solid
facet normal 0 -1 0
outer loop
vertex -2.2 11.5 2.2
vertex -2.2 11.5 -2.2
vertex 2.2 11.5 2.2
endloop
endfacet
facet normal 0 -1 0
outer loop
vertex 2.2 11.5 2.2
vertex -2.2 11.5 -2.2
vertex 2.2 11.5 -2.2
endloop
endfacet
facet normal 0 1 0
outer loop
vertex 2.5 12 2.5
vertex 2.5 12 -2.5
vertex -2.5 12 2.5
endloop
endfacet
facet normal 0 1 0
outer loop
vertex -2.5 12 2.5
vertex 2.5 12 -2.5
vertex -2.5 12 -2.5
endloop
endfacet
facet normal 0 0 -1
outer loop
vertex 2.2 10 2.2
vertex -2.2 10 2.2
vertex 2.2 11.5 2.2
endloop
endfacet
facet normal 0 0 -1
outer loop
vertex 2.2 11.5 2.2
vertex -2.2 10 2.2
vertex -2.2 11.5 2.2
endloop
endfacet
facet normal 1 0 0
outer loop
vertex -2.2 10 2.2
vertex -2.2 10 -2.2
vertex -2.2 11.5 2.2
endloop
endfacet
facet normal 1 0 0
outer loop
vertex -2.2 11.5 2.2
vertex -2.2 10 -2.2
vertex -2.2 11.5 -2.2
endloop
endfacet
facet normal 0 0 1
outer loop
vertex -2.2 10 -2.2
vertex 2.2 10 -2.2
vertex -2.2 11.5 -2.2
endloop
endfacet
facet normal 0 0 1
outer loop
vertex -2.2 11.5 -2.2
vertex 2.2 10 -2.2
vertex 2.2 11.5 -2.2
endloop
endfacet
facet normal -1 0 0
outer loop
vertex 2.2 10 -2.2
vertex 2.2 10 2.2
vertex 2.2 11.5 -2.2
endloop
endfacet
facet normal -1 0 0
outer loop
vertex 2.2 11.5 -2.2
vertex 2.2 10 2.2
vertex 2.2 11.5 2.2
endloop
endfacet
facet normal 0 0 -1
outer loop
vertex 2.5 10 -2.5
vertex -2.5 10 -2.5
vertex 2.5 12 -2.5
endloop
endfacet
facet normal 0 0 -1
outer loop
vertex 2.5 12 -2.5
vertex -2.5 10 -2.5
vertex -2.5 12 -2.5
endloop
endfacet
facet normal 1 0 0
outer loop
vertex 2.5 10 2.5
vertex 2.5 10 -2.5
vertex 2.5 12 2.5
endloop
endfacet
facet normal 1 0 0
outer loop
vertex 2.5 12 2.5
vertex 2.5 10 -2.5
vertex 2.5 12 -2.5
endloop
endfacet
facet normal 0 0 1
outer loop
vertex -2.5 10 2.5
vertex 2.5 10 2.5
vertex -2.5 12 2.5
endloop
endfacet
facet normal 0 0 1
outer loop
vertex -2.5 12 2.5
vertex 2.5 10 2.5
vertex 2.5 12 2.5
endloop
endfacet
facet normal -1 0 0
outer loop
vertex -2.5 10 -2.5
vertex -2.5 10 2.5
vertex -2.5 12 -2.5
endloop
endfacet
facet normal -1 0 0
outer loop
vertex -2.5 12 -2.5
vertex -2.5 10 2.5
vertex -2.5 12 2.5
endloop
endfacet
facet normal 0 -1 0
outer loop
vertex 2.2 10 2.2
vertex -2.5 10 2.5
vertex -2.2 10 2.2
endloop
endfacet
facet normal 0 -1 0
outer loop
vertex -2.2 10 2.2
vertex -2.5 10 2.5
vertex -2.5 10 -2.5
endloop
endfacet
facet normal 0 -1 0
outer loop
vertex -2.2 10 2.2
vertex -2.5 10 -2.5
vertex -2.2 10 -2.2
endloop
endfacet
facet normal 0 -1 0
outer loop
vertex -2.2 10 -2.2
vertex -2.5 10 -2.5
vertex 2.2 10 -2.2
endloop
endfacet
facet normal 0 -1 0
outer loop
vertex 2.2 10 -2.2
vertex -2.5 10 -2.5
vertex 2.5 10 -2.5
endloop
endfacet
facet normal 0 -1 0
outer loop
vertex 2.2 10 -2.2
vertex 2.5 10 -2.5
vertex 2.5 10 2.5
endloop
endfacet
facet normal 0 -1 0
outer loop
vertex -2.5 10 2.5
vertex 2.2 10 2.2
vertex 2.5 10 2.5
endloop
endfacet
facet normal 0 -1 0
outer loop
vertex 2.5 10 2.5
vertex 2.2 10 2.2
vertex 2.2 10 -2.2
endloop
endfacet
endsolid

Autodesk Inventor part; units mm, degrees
ref_plane "YZ Plane" through (0, 0, 0) normal (1, 0, 0) x (0, 1, 0)
ref_plane "XZ Plane" through (0, 0, 0) normal (0, 1, 0) x (-1, 0, 0)
ref_plane "XY Plane" through (0, 0, 0) normal (0, 0, 1) x (1, 0, 0)
sketch "Sketch1" plane through (0, 0, 0) normal (0, 1, 0) x (-1, 0, 0)
  line L0 (-2.5, 2.5) -> (2.5, 2.5)
  line L1 (2.5, 2.5) -> (2.5, -2.5)
  line L2 (2.5, -2.5) -> (-2.5, -2.5)
  line L3 (-2.5, -2.5) -> (-2.5, 2.5)
  line L4 (-2.5, 2.5) -> (2.5, -2.5) construction
  line L5 (2.5, 2.5) -> (-2.5, -2.5) construction
  point P0 (0, 0)
  dimension "d0" = 5
  dimension "d1" = 5
extrude "Extrusion1" add sketch "Sketch1" along normal blind 10
shell "Shell1" thickness 1 removed faces 1 at (-0.8333, 10, -0.8333)
sketch "Sketch2" plane through (0, 10, 0) normal (0, 1, 0) x (1, 0, 0)
  line L0 (1.5, 1.5) -> (1.5, -1.5) projected
  line L1 (1.5, -1.5) -> (-1.5, -1.5) projected
  line L2 (-1.5, -1.5) -> (-1.5, 1.5) projected
  line L3 (-1.5, 1.5) -> (1.5, 1.5) projected
  line L4 (2.5, 2.5) -> (-2.5, 2.5) projected
  line L5 (-2.5, 2.5) -> (-2.5, -2.5) projected
  line L6 (-2.5, -2.5) -> (2.5, -2.5) projected
  line L7 (2.5, -2.5) -> (2.5, 2.5) projected
  line L8 (-2, 2) -> (-2, -2)
  line L9 (-2, -2) -> (2, -2)
  line L10 (2, -2) -> (2, 2)
  line L11 (2, 2) -> (-2, 2)
  point P0 (0, 0)
  dimension "d5" = 0.5
extrude "Extrusion2" add sketch "Sketch2" along normal blind 1 contours L11 L10 L9 L8
sketch "Sketch3" plane through (0, 10, 0) normal (0, 1, 0) x (1, 0, 0)
  line L0 (-2, -2) -> (-2, 2) projected
  line L1 (-2, 2) -> (2, 2) projected
  line L2 (2, 2) -> (2, -2) projected
  line L3 (2, -2) -> (-2, -2) projected
  line L4 (2.5, 2.5) -> (-2.5, 2.5) projected
  line L5 (-2.5, 2.5) -> (-2.5, -2.5) projected
  line L6 (-2.5, -2.5) -> (2.5, -2.5) projected
  line L7 (2.5, -2.5) -> (2.5, 2.5) projected
  line L8 (-1.5, -1.5) -> (-1.5, 1.5) projected
  line L9 (1.5, -1.5) -> (-1.5, -1.5) projected
  line L10 (1.5, 1.5) -> (1.5, -1.5) projected
  line L11 (-1.5, 1.5) -> (1.5, 1.5) projected
  point P0 (0, 0)
extrude "Extrusion3" cut sketch "Sketch3" along normal through all both and the other way through all contours L0 L1 L2 L3 | L7 L6 L5 L4 | L8 L11 L10 L9
extrude "Extrusion4" add sketch "Sketch3" along normal blind 1.5 contours L7 L6 L5 L4
sketch "Sketch4" plane through (0, 11.5, 0) normal (0, 1, 0) x (1, 0, 0)
  point P0 (0, 0)
sketch "Sketch5" plane through (0, 10, 0) normal (0, -1, 0) x (1, 0, 0)
  line L0 (-2, 2) -> (-2, -2) projected
  line L1 (-2, -2) -> (2, -2) projected
  line L2 (2, -2) -> (2, 2) projected
  line L3 (2, 2) -> (-2, 2) projected
  line L4 (-2.2, -2.2) -> (-2.2, 2.2)
  line L5 (-2.2, 2.2) -> (2.2, 2.2)
  line L6 (2.2, 2.2) -> (2.2, -2.2)
  line L7 (2.2, -2.2) -> (-2.2, -2.2)
  point P0 (0, 0)
  dimension "d12" = 0.2
extrude "Extrusion5" cut sketch "Sketch5" against normal blind 1.5 contours L3 L2 L1 L0 | L4 L5 L6 L7
sketch "Sketch6" plane through (0, 11.5, 0) normal (0, 1, 0) x (1, 0, 0)
  line L0 (-2.5, 2.5) -> (-2.5, -2.5) projected
  line L1 (-2.5, 2.5) -> (2.5, 2.5)
  line L2 (2.5, 2.5) -> (2.5, -2.5)
  line L3 (2.5, -2.5) -> (-2.5, -2.5)
  line L4 (-2.5, -2.5) -> (-2.5, 2.5)
  point P0 (0, 0)
extrude "Extrusion6" add sketch "Sketch6" along normal blind 0.5
properties part number "snapfit_lid_v02"
